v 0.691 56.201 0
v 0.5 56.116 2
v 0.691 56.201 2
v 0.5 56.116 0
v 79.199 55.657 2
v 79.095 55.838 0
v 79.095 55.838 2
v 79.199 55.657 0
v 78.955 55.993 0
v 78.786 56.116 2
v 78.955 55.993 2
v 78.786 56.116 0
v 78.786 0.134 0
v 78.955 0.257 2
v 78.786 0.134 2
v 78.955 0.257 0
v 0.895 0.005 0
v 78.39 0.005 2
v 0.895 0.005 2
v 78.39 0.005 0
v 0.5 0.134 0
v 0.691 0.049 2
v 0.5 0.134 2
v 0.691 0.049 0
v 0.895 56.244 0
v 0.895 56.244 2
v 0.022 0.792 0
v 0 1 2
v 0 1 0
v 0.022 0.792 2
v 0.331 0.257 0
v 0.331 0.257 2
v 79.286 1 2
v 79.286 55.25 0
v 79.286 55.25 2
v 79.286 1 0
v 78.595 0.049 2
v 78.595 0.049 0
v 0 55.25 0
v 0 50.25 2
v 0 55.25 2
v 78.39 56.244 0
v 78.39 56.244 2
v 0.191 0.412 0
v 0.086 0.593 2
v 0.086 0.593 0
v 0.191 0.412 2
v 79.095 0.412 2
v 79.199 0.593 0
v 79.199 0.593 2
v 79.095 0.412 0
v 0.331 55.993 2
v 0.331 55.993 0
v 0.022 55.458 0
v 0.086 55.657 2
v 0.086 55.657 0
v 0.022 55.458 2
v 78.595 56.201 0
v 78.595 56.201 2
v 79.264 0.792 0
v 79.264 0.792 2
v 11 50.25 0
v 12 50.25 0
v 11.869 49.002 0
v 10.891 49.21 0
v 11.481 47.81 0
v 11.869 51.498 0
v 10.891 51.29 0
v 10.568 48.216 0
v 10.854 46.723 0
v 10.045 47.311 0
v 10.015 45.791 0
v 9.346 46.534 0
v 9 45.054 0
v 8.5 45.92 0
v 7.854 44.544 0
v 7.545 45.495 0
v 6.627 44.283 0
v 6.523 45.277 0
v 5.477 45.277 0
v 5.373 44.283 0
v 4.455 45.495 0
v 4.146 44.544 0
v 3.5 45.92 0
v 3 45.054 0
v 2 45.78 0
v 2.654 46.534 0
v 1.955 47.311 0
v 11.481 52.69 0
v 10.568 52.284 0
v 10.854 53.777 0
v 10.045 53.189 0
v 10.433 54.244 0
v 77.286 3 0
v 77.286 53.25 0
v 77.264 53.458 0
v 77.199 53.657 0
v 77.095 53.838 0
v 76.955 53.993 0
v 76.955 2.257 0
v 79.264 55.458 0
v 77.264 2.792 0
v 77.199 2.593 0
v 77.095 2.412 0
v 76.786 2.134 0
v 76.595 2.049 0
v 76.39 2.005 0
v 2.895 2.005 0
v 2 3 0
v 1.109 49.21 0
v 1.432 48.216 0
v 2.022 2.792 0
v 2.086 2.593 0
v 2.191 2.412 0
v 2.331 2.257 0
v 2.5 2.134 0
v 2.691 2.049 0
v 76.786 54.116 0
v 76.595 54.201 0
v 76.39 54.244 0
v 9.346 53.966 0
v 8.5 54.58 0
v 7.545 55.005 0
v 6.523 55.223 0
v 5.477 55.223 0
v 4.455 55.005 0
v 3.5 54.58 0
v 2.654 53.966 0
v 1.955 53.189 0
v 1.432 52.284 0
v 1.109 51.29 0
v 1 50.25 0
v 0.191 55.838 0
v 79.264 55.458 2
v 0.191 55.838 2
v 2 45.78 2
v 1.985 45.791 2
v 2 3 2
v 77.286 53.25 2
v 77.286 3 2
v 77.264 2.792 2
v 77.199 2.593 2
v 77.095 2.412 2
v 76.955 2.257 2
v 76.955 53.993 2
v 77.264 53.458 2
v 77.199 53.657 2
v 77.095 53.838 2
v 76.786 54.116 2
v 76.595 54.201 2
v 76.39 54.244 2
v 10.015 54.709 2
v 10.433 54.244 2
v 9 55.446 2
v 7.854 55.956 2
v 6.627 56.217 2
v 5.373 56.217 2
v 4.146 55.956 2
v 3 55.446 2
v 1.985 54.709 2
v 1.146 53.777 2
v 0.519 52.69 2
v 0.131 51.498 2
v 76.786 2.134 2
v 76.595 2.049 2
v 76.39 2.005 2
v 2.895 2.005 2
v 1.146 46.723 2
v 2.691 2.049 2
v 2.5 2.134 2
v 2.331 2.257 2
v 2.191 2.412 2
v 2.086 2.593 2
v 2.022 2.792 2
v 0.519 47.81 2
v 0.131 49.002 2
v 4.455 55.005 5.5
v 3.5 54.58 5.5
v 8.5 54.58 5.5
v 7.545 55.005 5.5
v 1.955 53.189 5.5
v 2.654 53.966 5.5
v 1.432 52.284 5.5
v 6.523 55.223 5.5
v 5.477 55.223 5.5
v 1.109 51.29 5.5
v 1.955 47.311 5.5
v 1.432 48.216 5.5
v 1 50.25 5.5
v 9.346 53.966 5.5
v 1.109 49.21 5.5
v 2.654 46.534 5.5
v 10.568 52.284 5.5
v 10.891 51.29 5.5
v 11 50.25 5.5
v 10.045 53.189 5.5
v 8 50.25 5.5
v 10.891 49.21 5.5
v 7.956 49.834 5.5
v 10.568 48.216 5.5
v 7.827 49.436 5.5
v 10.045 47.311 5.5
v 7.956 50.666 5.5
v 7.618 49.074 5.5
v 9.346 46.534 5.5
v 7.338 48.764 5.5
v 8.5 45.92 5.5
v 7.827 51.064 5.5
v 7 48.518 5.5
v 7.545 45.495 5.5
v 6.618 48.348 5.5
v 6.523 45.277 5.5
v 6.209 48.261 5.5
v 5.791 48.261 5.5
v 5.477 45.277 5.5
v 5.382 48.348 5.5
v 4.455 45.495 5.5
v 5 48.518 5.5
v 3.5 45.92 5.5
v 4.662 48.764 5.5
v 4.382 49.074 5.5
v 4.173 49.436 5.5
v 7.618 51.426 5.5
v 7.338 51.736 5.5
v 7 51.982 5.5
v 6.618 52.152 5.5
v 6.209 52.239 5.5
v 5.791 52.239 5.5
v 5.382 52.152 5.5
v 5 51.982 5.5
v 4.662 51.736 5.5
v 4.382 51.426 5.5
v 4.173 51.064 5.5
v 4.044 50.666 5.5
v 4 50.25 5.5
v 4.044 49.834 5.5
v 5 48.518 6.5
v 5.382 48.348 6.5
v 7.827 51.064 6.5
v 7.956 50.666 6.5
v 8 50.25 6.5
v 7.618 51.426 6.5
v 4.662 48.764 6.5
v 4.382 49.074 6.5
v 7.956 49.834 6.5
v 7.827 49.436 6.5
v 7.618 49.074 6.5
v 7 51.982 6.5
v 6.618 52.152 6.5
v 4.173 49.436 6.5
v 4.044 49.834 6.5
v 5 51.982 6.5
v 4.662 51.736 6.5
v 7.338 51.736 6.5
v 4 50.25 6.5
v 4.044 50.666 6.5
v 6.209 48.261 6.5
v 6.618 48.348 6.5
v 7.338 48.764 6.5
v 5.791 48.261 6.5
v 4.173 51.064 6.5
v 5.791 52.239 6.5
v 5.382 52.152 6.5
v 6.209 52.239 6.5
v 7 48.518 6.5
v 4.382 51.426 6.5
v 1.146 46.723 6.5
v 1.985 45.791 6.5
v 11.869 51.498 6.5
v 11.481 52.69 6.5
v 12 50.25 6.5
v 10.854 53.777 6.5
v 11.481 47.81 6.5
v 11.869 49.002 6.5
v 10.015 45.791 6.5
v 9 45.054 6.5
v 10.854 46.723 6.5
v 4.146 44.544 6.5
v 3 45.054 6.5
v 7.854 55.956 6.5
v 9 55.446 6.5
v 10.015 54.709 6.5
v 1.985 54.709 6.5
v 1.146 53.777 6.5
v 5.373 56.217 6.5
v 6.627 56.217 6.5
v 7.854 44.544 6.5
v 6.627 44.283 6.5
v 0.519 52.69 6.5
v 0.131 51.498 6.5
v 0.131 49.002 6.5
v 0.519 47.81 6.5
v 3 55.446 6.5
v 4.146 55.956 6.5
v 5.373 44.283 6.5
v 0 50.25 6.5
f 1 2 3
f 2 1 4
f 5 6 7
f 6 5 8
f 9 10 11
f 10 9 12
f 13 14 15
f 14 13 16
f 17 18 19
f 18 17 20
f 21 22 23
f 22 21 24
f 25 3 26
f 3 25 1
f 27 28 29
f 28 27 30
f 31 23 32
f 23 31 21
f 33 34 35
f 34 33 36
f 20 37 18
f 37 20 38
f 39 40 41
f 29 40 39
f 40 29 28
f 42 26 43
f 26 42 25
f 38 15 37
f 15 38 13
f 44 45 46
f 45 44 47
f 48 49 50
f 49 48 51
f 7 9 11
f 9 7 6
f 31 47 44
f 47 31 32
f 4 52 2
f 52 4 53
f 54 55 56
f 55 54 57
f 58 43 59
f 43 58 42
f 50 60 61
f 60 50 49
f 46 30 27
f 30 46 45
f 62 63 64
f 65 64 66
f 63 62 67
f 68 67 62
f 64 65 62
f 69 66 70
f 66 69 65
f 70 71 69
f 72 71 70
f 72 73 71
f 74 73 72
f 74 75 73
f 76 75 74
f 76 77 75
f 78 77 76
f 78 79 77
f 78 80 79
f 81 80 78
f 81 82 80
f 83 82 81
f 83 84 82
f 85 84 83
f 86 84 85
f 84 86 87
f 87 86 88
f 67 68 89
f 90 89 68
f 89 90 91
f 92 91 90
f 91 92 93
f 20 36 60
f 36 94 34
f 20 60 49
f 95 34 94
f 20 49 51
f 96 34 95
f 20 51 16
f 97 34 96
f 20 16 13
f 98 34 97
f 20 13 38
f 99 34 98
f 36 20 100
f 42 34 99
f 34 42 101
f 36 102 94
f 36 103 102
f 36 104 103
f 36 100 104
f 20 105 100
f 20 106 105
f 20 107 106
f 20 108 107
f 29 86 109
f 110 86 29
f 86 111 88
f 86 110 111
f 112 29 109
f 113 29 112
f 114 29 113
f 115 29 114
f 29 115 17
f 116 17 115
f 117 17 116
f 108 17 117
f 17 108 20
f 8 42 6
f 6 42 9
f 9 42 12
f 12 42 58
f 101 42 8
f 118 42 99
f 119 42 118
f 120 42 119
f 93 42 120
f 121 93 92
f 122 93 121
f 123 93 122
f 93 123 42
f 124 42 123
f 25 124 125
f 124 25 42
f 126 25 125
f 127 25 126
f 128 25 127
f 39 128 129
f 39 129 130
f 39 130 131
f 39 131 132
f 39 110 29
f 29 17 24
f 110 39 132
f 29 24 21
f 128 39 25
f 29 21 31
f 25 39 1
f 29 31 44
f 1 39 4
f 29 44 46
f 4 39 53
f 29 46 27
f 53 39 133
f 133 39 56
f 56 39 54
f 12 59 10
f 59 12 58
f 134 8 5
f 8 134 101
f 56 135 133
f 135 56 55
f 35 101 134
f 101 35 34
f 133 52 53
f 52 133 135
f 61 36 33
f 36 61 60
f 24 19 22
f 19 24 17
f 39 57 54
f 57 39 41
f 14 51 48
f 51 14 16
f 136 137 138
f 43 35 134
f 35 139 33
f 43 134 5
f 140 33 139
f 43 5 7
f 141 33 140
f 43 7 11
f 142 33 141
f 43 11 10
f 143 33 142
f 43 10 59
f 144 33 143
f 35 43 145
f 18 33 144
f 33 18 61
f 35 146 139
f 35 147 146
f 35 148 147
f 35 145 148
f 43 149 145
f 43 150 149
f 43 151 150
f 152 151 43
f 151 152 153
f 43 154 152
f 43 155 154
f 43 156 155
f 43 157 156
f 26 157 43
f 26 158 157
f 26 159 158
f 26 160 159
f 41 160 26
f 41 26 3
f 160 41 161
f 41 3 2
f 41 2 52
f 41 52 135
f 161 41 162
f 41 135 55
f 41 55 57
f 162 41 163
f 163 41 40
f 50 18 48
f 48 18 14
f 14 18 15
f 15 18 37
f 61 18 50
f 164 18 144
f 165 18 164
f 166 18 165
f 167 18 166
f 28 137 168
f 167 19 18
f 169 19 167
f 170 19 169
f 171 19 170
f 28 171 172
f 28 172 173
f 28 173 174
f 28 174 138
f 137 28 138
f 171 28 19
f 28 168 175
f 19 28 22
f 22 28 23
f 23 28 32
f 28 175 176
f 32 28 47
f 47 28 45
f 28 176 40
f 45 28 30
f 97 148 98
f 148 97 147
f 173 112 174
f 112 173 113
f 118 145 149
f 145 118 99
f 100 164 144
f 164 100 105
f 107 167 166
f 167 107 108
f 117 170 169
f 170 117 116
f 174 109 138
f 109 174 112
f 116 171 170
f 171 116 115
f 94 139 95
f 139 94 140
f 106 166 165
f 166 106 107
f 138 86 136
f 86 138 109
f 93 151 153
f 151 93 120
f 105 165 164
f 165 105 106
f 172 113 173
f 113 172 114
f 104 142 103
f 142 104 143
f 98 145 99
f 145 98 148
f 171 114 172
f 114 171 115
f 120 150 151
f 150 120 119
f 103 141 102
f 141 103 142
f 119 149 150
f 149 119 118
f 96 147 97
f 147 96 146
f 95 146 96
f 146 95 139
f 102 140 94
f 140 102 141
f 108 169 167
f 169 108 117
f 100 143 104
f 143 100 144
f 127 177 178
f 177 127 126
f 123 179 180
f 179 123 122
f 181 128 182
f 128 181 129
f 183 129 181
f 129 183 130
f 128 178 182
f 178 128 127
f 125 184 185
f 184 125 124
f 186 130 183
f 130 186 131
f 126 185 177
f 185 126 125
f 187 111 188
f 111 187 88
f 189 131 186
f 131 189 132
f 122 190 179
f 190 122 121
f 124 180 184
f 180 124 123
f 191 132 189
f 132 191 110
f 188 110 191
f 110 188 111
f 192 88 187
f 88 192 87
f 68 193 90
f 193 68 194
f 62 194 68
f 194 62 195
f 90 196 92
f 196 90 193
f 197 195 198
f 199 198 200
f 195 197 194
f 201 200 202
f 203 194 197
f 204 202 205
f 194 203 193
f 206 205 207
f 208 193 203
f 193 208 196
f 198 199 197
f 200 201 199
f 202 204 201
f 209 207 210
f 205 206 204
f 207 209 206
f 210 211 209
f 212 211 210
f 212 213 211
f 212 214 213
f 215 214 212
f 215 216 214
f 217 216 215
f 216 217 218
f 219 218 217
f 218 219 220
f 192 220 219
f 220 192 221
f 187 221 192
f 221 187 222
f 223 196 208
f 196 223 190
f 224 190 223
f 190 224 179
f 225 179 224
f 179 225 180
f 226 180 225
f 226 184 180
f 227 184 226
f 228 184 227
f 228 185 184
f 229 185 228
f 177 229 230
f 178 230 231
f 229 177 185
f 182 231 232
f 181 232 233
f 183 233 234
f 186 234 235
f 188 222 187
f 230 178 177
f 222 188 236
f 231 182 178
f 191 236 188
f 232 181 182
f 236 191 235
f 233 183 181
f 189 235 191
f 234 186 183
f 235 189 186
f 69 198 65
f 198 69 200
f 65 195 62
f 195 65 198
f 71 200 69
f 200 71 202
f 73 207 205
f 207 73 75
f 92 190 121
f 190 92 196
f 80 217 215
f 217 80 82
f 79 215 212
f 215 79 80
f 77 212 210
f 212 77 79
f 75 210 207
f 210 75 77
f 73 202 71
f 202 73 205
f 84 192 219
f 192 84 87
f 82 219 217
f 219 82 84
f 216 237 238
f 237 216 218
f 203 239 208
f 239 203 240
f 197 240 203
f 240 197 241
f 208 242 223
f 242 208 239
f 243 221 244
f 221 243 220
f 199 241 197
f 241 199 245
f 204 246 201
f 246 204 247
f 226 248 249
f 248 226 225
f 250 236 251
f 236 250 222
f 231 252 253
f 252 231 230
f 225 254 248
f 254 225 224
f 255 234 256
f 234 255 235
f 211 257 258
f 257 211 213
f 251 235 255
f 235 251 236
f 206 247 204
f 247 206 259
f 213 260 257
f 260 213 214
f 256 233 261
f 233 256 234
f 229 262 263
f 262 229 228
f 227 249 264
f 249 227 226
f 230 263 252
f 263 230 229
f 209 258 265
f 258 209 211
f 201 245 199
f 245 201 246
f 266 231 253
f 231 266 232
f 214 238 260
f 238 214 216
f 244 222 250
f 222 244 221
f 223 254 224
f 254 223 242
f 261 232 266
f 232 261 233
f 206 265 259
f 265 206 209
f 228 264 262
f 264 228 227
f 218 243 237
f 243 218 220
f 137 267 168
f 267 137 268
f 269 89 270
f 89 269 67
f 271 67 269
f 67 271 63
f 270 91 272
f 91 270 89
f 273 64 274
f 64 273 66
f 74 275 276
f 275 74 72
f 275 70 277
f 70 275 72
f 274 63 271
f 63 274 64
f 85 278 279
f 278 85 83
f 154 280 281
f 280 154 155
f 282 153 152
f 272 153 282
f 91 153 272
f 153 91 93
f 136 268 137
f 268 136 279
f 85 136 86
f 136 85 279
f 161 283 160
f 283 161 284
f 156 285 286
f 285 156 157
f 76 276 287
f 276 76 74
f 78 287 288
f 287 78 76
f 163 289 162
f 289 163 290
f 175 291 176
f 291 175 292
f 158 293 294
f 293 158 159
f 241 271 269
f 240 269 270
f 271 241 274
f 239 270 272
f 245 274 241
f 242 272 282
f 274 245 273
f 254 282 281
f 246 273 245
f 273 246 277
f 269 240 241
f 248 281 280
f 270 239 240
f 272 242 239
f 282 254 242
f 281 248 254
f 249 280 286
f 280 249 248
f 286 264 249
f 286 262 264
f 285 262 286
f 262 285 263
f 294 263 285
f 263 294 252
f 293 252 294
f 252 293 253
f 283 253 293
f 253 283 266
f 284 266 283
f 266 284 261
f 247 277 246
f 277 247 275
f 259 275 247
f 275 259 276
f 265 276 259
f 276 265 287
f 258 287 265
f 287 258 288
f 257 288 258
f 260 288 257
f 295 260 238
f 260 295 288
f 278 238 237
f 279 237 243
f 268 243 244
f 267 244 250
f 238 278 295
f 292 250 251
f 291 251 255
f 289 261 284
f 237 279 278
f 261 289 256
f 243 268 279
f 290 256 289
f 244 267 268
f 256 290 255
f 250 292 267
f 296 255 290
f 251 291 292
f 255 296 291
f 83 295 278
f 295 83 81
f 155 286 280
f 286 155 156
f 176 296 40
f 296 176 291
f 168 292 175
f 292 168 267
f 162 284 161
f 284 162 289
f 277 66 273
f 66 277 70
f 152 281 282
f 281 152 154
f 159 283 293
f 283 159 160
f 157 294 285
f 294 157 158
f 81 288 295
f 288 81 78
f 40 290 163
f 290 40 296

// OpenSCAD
whiteboard_width  = 555;
whiteboard_height = 900;

day_width  = whiteboard_width/7;
day_height = whiteboard_height/16;

wall      = 2;
thickness =  2;

magnet_height1 =  4.5;
magnet_height2 = 12.5;
magnet_diam    = 10;
screw_height   = magnet_height2-magnet_height1;
screw_diam     =  4;

$fn = 30;

module screw() {
    cylinder( d = screw_diam, h = screw_height );
}

module magnet() {
    cylinder( d = magnet_diam, h = magnet_height1+2 );
    translate([0, 0, magnet_height1]) screw();
}

module magnet_case() {
    difference() {
        cylinder( d = magnet_diam+wall, h = magnet_height1+wall);
        translate([0, 0, -1]) magnet();
    }
}

module plate(plate_width, plate_height, plate_thickness) {
    hull() {
        translate( [
            0 * plate_width  + 0.5 * wall,
            0 * plate_height + 0.5 * wall,
            0 ] )
            cylinder(d = wall, h = plate_thickness);
        translate( [
            1 * plate_width  - 0.5 * wall,
            0 * plate_height + 0.5 * wall,
            0 ] )
            cylinder(d = wall, h = plate_thickness);
        translate( [
            0 * plate_width  + 0.5 * wall,
            1 * plate_height - 0.5 * wall,
            0 ] )
            cylinder(d = wall, h = plate_thickness);
        translate( [
            1 * plate_width  - 0.5 * wall,
            1 * plate_height - 0.5 * wall,
            0 ] )
            cylinder(d = wall, h = plate_thickness);
    }
}

module day() {
    difference() {
        plate(day_width, day_height, thickness);
        
        translate( [ wall, wall, -1 ] ) 
        plate(day_width - 2*wall, day_height - 2*wall, thickness+3);
    }
}


difference() {
    day();
    translate([0.5*(magnet_diam+wall), day_height-0.5*(magnet_diam+wall), -1]) magnet();
}

translate([0.5*(magnet_diam+wall), day_height-0.5*(magnet_diam+wall), 0]) magnet_case();
